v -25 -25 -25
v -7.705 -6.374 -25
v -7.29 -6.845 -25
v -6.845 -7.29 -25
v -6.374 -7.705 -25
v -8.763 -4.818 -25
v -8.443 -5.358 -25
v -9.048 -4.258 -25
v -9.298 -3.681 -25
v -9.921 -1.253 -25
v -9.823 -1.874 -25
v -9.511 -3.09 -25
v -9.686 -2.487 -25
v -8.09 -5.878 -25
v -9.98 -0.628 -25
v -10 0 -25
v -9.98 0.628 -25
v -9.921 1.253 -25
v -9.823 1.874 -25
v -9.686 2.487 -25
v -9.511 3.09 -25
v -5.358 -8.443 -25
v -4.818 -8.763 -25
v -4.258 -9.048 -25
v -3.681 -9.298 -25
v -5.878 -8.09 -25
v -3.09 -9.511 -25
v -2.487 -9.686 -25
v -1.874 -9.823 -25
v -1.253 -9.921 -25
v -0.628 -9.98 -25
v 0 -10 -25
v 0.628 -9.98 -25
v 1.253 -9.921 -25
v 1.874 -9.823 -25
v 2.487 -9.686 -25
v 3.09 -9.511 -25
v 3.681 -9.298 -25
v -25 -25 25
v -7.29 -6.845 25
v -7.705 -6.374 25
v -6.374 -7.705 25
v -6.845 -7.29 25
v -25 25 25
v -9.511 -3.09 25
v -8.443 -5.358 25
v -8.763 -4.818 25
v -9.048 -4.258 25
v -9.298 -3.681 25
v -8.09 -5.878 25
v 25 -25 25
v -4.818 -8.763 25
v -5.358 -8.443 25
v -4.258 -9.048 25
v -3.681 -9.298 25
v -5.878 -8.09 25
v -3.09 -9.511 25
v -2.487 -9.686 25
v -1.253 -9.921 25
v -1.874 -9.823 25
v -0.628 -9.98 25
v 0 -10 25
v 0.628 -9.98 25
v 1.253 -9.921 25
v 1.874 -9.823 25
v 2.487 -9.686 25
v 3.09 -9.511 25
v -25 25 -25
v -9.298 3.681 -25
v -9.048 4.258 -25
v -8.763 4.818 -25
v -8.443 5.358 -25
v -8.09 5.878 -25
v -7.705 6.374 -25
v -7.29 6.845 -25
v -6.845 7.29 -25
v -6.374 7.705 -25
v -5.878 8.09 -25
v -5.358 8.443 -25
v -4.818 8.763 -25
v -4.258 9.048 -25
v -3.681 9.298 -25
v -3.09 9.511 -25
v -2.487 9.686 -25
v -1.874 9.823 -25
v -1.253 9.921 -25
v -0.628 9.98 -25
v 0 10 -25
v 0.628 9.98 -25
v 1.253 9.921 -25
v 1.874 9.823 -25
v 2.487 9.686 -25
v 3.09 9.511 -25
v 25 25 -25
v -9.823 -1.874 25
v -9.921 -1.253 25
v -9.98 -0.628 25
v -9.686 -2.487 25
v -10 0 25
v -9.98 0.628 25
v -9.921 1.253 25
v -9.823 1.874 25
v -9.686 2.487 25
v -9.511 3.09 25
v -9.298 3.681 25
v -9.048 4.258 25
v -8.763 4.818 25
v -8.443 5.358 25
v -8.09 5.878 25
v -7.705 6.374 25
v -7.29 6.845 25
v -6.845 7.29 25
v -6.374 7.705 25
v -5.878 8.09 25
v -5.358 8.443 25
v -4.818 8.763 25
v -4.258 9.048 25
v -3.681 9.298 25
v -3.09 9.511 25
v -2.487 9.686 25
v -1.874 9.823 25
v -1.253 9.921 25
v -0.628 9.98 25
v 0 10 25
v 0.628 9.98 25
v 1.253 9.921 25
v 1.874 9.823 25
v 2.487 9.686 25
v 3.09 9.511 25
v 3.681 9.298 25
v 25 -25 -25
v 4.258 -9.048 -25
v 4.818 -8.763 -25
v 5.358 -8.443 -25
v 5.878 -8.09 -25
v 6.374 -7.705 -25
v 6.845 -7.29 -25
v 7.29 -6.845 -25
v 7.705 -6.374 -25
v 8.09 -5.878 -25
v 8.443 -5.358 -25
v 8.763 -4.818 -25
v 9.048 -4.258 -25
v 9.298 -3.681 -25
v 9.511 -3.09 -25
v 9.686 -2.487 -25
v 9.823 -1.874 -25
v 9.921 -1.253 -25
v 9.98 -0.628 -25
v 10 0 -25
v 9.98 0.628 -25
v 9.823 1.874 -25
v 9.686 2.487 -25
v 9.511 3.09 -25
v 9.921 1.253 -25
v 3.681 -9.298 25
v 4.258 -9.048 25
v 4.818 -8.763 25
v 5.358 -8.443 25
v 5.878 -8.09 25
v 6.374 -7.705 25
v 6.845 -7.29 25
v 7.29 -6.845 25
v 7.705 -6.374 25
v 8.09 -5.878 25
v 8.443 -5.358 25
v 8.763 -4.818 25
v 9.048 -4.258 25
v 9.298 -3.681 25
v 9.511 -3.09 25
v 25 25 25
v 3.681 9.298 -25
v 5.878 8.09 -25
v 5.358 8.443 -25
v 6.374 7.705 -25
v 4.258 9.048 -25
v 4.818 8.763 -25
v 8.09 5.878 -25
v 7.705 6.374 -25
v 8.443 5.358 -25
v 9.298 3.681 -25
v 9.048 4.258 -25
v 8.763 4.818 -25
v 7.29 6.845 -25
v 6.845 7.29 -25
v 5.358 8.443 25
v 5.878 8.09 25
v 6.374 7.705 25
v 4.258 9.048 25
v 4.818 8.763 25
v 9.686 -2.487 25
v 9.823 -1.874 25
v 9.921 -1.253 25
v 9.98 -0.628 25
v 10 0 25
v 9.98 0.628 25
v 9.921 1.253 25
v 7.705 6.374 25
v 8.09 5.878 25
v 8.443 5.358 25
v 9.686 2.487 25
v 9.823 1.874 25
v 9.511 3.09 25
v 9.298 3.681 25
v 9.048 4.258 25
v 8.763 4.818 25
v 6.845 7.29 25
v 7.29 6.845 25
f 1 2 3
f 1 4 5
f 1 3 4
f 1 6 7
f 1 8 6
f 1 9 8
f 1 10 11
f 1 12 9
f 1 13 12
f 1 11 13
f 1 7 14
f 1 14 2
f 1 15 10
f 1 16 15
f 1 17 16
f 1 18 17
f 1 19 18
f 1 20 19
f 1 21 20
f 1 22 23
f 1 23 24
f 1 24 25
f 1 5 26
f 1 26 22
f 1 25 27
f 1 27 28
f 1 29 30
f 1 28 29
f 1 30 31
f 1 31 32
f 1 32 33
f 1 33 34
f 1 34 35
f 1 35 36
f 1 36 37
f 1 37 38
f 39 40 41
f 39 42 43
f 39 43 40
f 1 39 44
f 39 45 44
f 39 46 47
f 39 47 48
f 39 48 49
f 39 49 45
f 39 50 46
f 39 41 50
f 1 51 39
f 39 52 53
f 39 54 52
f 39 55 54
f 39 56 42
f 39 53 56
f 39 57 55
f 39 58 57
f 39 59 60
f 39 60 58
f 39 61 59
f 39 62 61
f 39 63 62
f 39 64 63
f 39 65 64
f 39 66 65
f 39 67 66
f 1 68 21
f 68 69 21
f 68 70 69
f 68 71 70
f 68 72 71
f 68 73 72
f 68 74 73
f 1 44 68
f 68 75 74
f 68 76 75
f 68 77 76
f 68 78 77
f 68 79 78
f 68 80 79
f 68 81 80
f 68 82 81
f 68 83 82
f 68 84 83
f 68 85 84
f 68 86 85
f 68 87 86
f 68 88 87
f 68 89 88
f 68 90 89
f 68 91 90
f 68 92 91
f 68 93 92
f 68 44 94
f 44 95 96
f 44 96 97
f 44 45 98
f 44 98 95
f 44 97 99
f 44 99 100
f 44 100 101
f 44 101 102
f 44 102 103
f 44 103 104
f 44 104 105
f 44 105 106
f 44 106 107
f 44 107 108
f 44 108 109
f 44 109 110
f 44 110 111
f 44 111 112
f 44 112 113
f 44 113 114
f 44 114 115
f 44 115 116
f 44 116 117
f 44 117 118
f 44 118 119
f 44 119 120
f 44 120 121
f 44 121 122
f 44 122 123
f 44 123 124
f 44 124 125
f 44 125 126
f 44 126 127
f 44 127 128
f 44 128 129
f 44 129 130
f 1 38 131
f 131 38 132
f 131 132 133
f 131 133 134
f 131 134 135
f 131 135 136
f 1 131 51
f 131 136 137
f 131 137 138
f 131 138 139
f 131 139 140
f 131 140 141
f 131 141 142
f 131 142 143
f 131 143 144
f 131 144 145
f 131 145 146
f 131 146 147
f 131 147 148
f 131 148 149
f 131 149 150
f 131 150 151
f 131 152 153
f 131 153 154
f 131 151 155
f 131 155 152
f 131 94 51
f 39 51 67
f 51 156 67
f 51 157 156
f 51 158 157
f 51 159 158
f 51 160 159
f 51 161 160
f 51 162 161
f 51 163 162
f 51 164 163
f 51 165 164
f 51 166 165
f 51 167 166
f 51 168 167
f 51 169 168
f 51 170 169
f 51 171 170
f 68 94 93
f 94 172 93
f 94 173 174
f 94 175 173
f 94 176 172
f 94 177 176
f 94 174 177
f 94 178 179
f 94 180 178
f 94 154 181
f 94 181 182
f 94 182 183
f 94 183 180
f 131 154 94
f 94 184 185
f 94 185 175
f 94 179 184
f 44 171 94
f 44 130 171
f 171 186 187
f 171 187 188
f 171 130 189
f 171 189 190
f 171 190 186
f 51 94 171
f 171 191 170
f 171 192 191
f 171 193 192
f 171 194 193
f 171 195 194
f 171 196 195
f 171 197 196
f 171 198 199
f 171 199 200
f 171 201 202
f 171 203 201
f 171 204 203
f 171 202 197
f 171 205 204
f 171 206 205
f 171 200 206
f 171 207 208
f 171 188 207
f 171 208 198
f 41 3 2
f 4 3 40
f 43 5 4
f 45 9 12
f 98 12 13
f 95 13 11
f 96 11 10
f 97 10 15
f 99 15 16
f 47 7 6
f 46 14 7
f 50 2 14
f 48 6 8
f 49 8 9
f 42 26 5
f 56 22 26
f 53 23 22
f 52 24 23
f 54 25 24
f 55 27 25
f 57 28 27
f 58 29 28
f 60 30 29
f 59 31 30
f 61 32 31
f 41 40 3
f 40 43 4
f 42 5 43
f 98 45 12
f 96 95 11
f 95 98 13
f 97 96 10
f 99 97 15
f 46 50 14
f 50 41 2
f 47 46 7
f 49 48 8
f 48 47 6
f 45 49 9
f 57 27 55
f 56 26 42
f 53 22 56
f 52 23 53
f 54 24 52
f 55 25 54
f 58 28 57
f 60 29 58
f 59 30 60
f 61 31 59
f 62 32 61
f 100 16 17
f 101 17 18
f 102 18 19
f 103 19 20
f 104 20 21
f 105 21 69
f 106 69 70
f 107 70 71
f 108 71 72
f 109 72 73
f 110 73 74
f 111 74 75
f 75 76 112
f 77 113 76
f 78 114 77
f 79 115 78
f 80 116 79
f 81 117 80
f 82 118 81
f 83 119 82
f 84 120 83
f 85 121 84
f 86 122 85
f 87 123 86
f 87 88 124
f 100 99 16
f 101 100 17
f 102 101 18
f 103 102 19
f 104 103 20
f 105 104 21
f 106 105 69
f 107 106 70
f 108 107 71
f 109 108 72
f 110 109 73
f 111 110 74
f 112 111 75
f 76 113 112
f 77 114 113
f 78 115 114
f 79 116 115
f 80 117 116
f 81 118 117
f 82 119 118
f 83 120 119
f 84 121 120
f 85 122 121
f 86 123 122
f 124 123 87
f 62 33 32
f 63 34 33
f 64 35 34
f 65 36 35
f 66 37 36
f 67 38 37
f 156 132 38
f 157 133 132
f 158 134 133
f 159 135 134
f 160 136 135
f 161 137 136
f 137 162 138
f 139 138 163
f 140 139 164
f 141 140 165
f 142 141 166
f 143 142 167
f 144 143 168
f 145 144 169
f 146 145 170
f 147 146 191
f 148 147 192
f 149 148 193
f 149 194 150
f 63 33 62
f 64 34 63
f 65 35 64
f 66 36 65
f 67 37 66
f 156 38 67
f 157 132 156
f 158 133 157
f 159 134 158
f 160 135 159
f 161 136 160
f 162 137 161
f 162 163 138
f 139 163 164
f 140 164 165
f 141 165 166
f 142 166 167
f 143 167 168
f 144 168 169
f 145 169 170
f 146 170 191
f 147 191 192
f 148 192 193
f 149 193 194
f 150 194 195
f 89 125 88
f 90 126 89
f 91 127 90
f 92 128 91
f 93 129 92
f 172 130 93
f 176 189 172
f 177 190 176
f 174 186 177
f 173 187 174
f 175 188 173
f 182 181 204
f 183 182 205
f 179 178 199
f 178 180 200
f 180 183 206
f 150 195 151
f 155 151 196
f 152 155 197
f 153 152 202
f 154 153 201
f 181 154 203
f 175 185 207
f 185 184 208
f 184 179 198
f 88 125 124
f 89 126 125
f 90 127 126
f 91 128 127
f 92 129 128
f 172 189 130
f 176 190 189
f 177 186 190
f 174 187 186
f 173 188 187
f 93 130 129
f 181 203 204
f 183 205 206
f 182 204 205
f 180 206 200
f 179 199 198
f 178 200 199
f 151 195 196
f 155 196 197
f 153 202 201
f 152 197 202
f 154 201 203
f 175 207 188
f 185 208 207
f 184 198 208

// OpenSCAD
$fn = 100;

difference() {
    cube([50, 50, 50], center = true);
    cylinder(h = 52, d = 20, center = true);
}
